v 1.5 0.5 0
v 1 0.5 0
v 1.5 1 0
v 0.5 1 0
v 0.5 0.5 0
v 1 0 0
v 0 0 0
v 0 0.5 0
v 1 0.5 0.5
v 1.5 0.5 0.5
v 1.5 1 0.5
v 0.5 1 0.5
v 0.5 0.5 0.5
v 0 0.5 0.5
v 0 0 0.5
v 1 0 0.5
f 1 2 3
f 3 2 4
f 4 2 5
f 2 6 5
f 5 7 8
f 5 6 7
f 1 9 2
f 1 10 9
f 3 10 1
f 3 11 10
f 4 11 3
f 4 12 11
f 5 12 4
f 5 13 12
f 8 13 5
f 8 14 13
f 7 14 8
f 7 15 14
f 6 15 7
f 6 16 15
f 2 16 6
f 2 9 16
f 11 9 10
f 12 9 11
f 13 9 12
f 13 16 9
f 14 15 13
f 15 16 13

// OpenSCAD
// Tetromino (S) for Stacks of Shapes
// by Slashee the Cow
linear_extrude(0.5)
polygon([[0,0],[1,0],[1,0.5],[1.5,0.5],[1.5,1],[0.5,1],[0.5,0.5],[0,0.5]]);
